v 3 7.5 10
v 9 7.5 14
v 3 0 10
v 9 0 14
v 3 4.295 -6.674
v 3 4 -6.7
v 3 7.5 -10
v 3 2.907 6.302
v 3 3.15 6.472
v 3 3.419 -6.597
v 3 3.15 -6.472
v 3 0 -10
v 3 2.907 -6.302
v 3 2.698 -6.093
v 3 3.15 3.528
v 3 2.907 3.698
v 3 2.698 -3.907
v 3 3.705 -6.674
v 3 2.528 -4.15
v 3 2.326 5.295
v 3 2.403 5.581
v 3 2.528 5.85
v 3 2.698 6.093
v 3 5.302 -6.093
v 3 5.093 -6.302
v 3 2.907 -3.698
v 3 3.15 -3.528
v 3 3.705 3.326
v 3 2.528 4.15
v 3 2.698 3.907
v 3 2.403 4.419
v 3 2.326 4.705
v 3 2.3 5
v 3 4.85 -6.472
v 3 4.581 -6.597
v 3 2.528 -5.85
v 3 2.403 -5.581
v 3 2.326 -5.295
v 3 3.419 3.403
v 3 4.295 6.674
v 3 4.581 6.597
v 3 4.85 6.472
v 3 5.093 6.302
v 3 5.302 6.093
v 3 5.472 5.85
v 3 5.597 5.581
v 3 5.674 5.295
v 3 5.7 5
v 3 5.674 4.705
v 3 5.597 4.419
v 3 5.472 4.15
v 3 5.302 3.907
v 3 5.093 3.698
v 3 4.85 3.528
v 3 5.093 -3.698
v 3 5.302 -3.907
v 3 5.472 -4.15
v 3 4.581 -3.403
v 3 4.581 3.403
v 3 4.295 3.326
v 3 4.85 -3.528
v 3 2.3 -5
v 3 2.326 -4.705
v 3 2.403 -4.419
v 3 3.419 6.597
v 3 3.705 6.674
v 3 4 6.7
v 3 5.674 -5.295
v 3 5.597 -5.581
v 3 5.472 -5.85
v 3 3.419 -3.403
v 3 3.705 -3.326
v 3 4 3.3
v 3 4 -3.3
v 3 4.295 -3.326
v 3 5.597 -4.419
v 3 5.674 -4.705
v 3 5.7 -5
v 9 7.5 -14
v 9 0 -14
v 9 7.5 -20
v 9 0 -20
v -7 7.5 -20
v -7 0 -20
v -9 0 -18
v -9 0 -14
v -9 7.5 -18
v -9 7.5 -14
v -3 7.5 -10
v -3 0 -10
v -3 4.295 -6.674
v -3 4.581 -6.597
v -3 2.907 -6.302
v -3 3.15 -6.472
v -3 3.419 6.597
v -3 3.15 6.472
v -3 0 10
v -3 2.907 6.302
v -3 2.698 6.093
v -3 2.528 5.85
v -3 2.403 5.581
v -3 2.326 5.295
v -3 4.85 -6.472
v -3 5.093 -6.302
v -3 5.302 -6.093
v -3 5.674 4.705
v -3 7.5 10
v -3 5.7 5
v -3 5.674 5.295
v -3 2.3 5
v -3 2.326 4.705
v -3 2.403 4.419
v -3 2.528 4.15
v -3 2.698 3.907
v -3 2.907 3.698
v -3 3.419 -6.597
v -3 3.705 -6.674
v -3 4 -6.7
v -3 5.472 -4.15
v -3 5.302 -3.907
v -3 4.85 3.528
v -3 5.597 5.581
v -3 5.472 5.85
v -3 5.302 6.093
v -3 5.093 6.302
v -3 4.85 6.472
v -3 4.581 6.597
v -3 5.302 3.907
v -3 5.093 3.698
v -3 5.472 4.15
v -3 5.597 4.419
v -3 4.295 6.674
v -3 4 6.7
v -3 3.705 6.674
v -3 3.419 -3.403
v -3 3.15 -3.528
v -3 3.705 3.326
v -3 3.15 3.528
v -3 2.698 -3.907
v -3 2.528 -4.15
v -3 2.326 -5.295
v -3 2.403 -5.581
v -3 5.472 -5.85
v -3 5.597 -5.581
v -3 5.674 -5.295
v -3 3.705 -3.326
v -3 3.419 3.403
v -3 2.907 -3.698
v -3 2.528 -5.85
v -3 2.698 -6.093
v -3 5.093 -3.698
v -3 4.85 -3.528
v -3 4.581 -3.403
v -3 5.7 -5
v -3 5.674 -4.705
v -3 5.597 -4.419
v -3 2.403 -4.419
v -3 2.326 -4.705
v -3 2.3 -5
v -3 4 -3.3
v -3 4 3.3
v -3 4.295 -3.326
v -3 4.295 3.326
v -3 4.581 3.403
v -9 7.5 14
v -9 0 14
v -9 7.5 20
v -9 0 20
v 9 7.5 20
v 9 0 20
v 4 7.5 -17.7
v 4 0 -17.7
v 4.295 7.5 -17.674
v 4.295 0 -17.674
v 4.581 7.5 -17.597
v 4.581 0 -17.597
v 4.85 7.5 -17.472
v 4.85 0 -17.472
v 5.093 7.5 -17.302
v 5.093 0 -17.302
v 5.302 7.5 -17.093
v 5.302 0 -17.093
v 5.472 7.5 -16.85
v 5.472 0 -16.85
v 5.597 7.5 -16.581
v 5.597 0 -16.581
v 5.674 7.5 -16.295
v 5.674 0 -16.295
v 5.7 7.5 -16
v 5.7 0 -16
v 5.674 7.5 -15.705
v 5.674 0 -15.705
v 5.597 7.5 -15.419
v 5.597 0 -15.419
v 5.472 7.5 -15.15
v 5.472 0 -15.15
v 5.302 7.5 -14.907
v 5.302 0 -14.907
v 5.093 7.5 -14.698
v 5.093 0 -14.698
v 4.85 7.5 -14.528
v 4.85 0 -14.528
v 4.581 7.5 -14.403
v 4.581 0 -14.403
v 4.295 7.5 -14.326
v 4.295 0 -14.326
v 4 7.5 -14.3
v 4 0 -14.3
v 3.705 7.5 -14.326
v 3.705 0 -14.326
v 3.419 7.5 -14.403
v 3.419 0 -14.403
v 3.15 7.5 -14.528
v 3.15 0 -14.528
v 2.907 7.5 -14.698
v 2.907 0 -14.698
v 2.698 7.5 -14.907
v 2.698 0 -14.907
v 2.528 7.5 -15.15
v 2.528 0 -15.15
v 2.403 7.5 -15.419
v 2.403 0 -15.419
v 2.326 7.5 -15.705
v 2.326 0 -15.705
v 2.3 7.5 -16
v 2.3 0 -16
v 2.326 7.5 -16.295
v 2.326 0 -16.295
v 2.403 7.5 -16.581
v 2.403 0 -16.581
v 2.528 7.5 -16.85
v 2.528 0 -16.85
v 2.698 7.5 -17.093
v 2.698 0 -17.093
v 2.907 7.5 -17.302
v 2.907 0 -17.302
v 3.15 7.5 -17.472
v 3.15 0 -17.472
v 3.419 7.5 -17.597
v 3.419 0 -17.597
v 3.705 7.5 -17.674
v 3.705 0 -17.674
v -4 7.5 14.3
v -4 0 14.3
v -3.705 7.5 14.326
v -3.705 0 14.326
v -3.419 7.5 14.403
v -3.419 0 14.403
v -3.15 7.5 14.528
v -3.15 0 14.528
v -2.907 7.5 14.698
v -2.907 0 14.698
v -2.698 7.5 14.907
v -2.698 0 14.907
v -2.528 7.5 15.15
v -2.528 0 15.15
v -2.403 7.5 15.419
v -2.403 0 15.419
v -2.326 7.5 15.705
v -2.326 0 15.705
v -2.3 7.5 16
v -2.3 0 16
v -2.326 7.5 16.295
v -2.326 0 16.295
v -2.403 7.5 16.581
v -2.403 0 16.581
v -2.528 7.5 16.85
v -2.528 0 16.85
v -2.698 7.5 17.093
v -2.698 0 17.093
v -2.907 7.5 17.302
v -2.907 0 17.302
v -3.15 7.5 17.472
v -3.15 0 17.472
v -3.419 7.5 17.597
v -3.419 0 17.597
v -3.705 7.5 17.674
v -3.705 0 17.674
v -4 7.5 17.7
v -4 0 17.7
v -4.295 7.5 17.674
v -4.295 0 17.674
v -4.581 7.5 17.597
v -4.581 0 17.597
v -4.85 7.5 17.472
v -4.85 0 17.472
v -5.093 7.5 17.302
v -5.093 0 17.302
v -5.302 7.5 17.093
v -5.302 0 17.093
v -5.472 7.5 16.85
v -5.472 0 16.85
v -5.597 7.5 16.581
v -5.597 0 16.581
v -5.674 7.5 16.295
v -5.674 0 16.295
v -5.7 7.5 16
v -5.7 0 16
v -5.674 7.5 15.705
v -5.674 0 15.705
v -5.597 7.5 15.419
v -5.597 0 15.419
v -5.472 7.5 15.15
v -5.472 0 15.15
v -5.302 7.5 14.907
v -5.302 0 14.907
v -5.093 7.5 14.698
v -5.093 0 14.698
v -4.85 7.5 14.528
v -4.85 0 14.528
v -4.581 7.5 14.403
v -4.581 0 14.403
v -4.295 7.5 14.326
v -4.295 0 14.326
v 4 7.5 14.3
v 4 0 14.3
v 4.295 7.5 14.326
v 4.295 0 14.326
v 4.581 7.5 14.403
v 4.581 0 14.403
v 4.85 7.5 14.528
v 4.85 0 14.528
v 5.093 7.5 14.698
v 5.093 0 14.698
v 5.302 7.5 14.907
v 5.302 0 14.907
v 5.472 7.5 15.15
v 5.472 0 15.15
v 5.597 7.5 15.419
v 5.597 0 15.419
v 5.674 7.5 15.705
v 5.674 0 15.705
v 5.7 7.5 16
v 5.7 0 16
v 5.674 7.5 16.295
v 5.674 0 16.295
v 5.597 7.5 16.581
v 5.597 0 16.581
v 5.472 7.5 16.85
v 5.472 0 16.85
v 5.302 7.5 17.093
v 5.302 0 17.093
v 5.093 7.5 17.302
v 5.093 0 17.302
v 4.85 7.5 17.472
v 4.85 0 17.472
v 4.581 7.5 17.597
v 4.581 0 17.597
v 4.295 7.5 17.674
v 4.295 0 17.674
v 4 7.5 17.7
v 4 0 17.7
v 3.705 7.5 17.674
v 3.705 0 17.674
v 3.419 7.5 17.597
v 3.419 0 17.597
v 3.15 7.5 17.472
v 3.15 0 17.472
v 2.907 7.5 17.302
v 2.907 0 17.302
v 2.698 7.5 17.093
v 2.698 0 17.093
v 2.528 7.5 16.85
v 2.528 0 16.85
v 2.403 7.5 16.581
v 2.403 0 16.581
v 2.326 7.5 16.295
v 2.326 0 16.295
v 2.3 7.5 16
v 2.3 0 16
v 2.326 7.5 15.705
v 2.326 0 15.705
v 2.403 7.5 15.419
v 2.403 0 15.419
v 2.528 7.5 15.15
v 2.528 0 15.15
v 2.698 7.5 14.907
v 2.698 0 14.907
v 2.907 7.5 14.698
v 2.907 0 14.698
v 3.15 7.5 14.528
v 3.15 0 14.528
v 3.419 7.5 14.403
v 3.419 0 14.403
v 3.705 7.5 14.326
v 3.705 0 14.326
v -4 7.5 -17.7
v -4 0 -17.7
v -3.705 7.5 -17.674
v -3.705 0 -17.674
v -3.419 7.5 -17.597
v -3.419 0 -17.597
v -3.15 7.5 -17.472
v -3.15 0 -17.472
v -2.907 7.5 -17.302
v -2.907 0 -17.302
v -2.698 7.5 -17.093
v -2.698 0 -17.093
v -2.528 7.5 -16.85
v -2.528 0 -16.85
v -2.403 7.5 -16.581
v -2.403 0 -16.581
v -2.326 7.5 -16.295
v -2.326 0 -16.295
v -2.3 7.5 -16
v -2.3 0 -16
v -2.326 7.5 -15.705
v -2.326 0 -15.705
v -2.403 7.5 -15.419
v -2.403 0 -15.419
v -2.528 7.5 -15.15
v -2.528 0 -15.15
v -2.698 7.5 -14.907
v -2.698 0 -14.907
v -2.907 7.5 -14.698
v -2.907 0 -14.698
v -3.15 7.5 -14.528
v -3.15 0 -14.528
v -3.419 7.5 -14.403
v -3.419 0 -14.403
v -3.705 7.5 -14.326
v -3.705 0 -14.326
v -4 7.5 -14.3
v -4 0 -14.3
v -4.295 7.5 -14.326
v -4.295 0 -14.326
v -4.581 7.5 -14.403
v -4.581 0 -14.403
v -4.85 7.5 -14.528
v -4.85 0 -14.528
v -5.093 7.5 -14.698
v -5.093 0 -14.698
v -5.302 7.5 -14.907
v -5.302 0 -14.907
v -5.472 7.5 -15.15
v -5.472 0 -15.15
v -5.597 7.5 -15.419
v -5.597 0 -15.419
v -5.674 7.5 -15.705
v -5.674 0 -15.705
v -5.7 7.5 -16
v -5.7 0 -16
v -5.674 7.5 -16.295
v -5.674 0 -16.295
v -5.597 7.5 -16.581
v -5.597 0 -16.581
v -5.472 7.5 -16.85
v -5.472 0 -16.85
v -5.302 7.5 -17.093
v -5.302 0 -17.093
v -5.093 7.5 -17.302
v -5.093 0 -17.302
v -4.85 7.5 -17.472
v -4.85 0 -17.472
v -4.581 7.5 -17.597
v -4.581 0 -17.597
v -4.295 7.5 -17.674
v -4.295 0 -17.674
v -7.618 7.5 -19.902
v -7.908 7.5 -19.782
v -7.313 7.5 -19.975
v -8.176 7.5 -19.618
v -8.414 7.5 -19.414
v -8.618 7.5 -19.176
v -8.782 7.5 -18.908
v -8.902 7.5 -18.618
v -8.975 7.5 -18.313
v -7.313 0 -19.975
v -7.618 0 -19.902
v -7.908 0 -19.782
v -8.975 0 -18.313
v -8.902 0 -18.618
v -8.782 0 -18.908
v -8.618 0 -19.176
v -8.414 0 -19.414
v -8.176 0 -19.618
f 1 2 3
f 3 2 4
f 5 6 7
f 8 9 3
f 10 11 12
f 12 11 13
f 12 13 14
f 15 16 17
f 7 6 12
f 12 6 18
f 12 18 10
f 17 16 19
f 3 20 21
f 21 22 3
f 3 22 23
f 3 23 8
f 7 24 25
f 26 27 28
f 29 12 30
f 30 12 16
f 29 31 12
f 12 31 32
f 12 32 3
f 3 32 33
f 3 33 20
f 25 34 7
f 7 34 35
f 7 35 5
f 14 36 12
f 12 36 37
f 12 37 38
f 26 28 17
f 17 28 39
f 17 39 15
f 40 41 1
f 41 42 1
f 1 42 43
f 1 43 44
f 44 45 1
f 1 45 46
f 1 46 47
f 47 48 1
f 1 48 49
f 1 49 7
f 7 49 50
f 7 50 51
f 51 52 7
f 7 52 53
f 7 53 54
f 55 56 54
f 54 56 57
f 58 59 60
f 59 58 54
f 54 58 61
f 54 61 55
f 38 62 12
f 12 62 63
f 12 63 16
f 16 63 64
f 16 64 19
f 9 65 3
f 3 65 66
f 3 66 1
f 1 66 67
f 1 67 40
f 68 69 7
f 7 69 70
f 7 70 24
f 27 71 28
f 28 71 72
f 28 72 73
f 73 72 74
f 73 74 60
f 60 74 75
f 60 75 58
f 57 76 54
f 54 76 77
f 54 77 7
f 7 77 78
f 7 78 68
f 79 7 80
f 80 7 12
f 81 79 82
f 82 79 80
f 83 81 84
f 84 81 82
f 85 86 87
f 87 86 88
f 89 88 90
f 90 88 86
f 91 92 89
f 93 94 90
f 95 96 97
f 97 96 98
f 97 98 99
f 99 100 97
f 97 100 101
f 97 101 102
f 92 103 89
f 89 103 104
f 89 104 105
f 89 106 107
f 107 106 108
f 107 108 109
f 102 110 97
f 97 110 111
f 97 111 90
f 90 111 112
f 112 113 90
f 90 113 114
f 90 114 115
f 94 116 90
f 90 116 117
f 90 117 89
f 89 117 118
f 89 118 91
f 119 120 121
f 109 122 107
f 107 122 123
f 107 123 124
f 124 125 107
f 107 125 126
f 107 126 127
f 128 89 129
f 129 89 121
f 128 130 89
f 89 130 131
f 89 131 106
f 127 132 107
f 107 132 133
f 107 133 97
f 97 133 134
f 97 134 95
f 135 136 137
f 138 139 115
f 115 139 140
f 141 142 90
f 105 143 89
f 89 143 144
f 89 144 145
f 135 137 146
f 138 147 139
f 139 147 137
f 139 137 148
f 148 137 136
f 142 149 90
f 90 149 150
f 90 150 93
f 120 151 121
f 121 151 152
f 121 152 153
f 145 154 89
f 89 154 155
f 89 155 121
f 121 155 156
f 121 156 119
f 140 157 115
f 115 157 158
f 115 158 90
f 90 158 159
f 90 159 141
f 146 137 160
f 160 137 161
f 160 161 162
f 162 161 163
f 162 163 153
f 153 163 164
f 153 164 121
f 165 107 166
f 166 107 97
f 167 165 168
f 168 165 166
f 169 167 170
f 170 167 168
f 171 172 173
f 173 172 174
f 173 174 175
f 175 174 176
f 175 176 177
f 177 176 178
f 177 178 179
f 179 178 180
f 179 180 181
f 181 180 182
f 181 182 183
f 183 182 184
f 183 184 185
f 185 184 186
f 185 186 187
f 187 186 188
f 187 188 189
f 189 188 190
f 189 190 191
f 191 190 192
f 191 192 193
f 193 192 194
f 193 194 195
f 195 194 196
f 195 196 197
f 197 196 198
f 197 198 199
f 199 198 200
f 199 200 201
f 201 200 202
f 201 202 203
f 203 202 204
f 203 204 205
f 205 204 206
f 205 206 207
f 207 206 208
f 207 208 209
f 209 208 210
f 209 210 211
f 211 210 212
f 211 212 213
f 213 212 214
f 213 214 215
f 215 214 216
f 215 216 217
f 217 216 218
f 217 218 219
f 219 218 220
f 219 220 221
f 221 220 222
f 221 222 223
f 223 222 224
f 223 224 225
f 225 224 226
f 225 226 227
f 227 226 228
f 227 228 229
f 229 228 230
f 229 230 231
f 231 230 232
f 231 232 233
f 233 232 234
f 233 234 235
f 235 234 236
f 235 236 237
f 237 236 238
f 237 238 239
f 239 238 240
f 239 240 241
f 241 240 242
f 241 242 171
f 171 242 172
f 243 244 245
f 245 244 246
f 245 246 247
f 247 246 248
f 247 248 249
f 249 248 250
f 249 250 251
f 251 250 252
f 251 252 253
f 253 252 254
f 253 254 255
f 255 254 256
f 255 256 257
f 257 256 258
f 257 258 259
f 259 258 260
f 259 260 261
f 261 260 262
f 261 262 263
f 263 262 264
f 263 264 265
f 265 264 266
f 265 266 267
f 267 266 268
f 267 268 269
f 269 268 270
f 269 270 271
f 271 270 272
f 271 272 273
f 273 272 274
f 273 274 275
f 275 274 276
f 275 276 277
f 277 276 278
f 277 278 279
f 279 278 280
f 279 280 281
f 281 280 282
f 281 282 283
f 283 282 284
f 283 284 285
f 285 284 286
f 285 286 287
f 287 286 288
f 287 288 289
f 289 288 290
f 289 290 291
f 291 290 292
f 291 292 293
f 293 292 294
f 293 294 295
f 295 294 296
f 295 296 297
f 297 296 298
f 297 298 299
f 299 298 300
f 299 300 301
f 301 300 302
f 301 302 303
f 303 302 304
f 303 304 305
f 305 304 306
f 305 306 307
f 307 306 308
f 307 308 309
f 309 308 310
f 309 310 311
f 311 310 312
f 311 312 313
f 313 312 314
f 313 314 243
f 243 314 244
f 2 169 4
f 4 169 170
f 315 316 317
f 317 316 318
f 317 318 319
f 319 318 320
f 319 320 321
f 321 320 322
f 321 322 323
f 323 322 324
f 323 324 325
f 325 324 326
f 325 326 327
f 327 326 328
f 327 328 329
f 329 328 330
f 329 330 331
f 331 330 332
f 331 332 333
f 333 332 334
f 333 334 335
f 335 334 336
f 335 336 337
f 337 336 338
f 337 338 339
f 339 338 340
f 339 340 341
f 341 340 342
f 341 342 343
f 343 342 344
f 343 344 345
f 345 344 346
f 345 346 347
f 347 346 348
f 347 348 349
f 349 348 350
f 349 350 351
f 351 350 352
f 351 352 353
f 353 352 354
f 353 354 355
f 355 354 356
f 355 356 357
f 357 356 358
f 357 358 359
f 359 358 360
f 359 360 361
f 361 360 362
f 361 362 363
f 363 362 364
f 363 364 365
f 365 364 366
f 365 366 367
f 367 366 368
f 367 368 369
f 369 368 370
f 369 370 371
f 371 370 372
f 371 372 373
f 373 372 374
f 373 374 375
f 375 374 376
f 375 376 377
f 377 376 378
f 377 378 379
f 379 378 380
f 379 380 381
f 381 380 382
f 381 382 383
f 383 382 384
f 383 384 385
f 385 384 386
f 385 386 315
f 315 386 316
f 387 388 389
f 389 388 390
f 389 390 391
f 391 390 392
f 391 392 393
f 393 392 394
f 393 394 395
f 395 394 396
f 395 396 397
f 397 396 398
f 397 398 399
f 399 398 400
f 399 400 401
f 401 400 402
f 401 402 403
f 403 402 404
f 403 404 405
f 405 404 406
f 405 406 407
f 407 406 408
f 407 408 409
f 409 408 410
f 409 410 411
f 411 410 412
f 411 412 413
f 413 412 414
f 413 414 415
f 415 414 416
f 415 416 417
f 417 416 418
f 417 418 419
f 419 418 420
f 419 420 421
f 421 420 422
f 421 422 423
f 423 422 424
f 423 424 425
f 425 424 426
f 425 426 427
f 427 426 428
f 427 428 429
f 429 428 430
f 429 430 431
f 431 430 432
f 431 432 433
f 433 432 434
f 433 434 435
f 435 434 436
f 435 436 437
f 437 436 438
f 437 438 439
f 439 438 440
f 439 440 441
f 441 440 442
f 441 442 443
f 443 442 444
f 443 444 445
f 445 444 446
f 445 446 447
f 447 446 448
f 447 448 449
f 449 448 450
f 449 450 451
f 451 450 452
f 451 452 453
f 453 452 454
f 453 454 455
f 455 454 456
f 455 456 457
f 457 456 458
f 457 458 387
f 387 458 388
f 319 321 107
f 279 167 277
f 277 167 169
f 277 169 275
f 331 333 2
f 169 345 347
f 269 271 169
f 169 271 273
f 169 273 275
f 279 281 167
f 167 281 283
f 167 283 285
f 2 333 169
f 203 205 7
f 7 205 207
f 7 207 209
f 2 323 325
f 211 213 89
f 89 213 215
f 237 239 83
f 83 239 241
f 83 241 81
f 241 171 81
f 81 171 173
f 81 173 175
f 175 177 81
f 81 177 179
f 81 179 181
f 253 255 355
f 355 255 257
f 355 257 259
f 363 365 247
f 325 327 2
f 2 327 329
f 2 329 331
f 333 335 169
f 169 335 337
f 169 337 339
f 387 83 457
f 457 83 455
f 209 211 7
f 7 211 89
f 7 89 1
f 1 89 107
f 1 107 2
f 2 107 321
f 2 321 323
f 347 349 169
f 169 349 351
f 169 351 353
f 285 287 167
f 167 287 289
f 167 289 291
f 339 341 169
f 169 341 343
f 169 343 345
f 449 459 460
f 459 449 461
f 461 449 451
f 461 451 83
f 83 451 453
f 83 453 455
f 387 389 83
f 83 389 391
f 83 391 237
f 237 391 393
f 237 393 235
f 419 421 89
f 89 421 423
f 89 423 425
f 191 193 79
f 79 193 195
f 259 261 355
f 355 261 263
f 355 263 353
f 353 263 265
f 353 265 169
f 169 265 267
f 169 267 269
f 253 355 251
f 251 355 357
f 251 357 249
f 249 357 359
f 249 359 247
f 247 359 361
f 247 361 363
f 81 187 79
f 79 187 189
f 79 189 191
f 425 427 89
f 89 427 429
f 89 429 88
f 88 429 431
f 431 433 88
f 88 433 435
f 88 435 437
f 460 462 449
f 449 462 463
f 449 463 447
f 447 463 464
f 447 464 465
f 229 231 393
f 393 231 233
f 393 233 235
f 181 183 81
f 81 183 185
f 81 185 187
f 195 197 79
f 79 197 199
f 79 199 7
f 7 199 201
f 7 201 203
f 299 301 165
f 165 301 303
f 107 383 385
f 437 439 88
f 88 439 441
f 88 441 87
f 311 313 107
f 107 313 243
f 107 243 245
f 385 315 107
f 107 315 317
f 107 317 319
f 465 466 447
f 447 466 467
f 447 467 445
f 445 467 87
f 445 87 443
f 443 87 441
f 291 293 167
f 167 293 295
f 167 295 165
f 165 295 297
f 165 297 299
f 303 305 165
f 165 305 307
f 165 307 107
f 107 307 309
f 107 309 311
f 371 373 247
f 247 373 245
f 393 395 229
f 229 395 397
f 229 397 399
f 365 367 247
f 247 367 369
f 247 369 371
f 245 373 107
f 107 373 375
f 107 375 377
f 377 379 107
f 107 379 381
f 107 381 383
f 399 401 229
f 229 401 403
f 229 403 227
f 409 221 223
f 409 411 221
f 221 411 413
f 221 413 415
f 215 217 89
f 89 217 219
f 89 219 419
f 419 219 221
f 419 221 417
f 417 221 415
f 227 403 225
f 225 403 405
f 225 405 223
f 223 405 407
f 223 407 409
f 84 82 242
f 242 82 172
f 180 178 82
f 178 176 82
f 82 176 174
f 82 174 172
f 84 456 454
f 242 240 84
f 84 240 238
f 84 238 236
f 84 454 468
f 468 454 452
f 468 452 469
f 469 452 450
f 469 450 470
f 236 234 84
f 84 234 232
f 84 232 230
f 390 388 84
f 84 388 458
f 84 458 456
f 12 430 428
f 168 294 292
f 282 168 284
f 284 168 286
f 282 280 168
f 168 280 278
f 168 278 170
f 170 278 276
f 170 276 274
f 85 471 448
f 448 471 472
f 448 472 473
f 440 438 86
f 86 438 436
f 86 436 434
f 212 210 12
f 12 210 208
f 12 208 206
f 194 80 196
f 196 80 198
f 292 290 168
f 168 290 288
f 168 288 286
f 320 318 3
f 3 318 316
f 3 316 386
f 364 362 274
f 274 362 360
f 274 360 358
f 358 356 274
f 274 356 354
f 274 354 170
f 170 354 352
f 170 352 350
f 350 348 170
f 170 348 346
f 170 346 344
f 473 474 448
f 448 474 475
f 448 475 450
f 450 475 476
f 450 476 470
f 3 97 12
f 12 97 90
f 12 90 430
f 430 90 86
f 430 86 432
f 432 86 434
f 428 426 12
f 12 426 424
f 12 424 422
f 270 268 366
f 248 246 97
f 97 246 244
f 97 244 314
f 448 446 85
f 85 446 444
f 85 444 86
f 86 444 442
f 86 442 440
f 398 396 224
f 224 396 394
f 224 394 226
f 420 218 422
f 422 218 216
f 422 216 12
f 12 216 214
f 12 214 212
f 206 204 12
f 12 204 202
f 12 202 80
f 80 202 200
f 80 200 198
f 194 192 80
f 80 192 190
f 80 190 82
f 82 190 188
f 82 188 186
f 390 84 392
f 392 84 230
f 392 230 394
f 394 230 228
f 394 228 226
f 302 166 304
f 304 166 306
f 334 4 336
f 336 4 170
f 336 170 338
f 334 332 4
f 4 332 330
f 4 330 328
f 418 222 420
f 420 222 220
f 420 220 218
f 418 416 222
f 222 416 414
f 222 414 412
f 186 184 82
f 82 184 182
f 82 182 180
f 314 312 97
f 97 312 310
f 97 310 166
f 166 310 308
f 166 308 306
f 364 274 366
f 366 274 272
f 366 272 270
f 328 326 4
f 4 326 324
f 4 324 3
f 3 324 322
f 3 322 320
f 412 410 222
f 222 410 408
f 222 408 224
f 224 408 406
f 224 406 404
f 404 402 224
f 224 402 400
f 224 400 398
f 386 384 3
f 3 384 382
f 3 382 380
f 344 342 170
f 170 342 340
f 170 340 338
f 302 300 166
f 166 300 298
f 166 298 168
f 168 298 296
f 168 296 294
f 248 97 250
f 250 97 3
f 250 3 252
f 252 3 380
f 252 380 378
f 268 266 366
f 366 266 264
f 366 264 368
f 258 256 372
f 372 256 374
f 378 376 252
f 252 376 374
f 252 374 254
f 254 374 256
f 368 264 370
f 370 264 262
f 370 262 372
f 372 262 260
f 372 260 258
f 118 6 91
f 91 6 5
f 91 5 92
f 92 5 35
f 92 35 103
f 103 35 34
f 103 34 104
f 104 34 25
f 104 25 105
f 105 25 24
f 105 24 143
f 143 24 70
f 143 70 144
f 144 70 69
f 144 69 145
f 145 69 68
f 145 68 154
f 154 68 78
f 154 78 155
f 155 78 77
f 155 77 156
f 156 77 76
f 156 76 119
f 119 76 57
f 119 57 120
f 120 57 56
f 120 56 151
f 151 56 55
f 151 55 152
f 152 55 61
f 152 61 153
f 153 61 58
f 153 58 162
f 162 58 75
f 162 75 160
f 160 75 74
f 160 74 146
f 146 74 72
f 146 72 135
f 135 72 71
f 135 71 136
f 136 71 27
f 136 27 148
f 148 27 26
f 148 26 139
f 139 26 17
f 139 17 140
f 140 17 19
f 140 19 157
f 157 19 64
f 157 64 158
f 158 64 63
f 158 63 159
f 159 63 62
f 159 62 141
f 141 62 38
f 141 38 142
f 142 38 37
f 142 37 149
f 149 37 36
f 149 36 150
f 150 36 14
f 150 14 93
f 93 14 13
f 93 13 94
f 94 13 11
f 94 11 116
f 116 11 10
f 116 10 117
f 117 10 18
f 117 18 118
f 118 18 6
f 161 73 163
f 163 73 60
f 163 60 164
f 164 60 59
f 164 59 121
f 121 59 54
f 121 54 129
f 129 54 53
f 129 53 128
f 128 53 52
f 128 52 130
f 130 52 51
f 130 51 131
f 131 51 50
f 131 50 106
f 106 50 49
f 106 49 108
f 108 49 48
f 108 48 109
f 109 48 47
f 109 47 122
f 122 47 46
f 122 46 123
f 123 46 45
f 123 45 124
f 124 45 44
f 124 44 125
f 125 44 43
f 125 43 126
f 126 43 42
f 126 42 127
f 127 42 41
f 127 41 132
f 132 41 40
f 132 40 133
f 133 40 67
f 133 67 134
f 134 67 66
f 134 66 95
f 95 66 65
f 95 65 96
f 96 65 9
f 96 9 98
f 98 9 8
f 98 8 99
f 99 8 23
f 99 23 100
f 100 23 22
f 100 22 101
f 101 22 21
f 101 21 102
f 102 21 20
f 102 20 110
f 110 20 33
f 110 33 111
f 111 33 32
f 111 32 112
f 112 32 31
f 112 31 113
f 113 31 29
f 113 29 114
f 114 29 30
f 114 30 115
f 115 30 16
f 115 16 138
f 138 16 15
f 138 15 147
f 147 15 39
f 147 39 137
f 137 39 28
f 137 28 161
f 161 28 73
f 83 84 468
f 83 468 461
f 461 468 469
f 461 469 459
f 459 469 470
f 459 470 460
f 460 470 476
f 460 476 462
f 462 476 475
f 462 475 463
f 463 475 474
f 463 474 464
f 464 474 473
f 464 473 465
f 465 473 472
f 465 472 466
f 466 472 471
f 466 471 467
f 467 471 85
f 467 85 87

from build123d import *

# Parameters (mm, degrees)
SKETCH1_R           = 1.7
SKETCH1_W           = 6
SKETCH1_H           = 20
BOSS_EXTRUDE1_DEPTH = 7.5
SKETCH3_R           = 1.7
CUT_EXTRUDE2_DEPTH  = 6
FILLET1_R           = 2


with BuildPart() as part:
    # Sketch1 → Boss-Extrude1 (new body)
    # profile 1 of 3: a face of its own
    with BuildSketch(Plane(origin=(0, 0, 0), x_dir=(1, 0, 0), z_dir=(0, 1, 0))):
        Polygon((-3, -10), (3, -10), (9, -14), (9, -20), (-9, -20), (-9, -14), align=None)
        with Locations(Location((4, -16, 0), (0, 0, 270))):
            Circle(SKETCH1_R, mode=Mode.SUBTRACT)
        with Locations(Location((-4, -16, 0), (0, 0, 270))):
            Circle(SKETCH1_R, mode=Mode.SUBTRACT)
    # profile 2 of 3: a face of its own
    with BuildSketch(Plane(origin=(0, 0, 0), x_dir=(1, 0, 0), z_dir=(0, 1, 0))):
        Rectangle(SKETCH1_W, SKETCH1_H)
    # profile 3 of 3: a face of its own
    with BuildSketch(Plane(origin=(0, 0, 0), x_dir=(1, 0, 0), z_dir=(0, 1, 0))):
        Polygon((9, 14), (3, 10), (-3, 10), (-9, 14), (-9, 20), (9, 20), align=None)
        with Locations(Location((4, 16, 0), (0, 0, 270))):
            Circle(SKETCH1_R, mode=Mode.SUBTRACT)
        with Locations(Location((-4, 16, 0), (0, 0, 270))):
            Circle(SKETCH1_R, mode=Mode.SUBTRACT)
    extrude(amount=BOSS_EXTRUDE1_DEPTH)

    # Sketch3 → Cut-Extrude2 (cut)
    with BuildSketch(Plane(origin=(3, 0, 0), x_dir=(0, 0, -1), z_dir=(1, 0, 0))):
        with Locations((-5, 4)):
            Circle(SKETCH3_R)
        with Locations((5, 4)):
            Circle(SKETCH3_R)
    extrude(amount=-CUT_EXTRUDE2_DEPTH, mode=Mode.SUBTRACT)

    # Fillet1
    fillet1_edges = [part.edges().sort_by_distance(p)[0] for p in [
        (-9, 3.75, -20),
    ]]
    fillet(fillet1_edges, radius=FILLET1_R)


solid = part.part
